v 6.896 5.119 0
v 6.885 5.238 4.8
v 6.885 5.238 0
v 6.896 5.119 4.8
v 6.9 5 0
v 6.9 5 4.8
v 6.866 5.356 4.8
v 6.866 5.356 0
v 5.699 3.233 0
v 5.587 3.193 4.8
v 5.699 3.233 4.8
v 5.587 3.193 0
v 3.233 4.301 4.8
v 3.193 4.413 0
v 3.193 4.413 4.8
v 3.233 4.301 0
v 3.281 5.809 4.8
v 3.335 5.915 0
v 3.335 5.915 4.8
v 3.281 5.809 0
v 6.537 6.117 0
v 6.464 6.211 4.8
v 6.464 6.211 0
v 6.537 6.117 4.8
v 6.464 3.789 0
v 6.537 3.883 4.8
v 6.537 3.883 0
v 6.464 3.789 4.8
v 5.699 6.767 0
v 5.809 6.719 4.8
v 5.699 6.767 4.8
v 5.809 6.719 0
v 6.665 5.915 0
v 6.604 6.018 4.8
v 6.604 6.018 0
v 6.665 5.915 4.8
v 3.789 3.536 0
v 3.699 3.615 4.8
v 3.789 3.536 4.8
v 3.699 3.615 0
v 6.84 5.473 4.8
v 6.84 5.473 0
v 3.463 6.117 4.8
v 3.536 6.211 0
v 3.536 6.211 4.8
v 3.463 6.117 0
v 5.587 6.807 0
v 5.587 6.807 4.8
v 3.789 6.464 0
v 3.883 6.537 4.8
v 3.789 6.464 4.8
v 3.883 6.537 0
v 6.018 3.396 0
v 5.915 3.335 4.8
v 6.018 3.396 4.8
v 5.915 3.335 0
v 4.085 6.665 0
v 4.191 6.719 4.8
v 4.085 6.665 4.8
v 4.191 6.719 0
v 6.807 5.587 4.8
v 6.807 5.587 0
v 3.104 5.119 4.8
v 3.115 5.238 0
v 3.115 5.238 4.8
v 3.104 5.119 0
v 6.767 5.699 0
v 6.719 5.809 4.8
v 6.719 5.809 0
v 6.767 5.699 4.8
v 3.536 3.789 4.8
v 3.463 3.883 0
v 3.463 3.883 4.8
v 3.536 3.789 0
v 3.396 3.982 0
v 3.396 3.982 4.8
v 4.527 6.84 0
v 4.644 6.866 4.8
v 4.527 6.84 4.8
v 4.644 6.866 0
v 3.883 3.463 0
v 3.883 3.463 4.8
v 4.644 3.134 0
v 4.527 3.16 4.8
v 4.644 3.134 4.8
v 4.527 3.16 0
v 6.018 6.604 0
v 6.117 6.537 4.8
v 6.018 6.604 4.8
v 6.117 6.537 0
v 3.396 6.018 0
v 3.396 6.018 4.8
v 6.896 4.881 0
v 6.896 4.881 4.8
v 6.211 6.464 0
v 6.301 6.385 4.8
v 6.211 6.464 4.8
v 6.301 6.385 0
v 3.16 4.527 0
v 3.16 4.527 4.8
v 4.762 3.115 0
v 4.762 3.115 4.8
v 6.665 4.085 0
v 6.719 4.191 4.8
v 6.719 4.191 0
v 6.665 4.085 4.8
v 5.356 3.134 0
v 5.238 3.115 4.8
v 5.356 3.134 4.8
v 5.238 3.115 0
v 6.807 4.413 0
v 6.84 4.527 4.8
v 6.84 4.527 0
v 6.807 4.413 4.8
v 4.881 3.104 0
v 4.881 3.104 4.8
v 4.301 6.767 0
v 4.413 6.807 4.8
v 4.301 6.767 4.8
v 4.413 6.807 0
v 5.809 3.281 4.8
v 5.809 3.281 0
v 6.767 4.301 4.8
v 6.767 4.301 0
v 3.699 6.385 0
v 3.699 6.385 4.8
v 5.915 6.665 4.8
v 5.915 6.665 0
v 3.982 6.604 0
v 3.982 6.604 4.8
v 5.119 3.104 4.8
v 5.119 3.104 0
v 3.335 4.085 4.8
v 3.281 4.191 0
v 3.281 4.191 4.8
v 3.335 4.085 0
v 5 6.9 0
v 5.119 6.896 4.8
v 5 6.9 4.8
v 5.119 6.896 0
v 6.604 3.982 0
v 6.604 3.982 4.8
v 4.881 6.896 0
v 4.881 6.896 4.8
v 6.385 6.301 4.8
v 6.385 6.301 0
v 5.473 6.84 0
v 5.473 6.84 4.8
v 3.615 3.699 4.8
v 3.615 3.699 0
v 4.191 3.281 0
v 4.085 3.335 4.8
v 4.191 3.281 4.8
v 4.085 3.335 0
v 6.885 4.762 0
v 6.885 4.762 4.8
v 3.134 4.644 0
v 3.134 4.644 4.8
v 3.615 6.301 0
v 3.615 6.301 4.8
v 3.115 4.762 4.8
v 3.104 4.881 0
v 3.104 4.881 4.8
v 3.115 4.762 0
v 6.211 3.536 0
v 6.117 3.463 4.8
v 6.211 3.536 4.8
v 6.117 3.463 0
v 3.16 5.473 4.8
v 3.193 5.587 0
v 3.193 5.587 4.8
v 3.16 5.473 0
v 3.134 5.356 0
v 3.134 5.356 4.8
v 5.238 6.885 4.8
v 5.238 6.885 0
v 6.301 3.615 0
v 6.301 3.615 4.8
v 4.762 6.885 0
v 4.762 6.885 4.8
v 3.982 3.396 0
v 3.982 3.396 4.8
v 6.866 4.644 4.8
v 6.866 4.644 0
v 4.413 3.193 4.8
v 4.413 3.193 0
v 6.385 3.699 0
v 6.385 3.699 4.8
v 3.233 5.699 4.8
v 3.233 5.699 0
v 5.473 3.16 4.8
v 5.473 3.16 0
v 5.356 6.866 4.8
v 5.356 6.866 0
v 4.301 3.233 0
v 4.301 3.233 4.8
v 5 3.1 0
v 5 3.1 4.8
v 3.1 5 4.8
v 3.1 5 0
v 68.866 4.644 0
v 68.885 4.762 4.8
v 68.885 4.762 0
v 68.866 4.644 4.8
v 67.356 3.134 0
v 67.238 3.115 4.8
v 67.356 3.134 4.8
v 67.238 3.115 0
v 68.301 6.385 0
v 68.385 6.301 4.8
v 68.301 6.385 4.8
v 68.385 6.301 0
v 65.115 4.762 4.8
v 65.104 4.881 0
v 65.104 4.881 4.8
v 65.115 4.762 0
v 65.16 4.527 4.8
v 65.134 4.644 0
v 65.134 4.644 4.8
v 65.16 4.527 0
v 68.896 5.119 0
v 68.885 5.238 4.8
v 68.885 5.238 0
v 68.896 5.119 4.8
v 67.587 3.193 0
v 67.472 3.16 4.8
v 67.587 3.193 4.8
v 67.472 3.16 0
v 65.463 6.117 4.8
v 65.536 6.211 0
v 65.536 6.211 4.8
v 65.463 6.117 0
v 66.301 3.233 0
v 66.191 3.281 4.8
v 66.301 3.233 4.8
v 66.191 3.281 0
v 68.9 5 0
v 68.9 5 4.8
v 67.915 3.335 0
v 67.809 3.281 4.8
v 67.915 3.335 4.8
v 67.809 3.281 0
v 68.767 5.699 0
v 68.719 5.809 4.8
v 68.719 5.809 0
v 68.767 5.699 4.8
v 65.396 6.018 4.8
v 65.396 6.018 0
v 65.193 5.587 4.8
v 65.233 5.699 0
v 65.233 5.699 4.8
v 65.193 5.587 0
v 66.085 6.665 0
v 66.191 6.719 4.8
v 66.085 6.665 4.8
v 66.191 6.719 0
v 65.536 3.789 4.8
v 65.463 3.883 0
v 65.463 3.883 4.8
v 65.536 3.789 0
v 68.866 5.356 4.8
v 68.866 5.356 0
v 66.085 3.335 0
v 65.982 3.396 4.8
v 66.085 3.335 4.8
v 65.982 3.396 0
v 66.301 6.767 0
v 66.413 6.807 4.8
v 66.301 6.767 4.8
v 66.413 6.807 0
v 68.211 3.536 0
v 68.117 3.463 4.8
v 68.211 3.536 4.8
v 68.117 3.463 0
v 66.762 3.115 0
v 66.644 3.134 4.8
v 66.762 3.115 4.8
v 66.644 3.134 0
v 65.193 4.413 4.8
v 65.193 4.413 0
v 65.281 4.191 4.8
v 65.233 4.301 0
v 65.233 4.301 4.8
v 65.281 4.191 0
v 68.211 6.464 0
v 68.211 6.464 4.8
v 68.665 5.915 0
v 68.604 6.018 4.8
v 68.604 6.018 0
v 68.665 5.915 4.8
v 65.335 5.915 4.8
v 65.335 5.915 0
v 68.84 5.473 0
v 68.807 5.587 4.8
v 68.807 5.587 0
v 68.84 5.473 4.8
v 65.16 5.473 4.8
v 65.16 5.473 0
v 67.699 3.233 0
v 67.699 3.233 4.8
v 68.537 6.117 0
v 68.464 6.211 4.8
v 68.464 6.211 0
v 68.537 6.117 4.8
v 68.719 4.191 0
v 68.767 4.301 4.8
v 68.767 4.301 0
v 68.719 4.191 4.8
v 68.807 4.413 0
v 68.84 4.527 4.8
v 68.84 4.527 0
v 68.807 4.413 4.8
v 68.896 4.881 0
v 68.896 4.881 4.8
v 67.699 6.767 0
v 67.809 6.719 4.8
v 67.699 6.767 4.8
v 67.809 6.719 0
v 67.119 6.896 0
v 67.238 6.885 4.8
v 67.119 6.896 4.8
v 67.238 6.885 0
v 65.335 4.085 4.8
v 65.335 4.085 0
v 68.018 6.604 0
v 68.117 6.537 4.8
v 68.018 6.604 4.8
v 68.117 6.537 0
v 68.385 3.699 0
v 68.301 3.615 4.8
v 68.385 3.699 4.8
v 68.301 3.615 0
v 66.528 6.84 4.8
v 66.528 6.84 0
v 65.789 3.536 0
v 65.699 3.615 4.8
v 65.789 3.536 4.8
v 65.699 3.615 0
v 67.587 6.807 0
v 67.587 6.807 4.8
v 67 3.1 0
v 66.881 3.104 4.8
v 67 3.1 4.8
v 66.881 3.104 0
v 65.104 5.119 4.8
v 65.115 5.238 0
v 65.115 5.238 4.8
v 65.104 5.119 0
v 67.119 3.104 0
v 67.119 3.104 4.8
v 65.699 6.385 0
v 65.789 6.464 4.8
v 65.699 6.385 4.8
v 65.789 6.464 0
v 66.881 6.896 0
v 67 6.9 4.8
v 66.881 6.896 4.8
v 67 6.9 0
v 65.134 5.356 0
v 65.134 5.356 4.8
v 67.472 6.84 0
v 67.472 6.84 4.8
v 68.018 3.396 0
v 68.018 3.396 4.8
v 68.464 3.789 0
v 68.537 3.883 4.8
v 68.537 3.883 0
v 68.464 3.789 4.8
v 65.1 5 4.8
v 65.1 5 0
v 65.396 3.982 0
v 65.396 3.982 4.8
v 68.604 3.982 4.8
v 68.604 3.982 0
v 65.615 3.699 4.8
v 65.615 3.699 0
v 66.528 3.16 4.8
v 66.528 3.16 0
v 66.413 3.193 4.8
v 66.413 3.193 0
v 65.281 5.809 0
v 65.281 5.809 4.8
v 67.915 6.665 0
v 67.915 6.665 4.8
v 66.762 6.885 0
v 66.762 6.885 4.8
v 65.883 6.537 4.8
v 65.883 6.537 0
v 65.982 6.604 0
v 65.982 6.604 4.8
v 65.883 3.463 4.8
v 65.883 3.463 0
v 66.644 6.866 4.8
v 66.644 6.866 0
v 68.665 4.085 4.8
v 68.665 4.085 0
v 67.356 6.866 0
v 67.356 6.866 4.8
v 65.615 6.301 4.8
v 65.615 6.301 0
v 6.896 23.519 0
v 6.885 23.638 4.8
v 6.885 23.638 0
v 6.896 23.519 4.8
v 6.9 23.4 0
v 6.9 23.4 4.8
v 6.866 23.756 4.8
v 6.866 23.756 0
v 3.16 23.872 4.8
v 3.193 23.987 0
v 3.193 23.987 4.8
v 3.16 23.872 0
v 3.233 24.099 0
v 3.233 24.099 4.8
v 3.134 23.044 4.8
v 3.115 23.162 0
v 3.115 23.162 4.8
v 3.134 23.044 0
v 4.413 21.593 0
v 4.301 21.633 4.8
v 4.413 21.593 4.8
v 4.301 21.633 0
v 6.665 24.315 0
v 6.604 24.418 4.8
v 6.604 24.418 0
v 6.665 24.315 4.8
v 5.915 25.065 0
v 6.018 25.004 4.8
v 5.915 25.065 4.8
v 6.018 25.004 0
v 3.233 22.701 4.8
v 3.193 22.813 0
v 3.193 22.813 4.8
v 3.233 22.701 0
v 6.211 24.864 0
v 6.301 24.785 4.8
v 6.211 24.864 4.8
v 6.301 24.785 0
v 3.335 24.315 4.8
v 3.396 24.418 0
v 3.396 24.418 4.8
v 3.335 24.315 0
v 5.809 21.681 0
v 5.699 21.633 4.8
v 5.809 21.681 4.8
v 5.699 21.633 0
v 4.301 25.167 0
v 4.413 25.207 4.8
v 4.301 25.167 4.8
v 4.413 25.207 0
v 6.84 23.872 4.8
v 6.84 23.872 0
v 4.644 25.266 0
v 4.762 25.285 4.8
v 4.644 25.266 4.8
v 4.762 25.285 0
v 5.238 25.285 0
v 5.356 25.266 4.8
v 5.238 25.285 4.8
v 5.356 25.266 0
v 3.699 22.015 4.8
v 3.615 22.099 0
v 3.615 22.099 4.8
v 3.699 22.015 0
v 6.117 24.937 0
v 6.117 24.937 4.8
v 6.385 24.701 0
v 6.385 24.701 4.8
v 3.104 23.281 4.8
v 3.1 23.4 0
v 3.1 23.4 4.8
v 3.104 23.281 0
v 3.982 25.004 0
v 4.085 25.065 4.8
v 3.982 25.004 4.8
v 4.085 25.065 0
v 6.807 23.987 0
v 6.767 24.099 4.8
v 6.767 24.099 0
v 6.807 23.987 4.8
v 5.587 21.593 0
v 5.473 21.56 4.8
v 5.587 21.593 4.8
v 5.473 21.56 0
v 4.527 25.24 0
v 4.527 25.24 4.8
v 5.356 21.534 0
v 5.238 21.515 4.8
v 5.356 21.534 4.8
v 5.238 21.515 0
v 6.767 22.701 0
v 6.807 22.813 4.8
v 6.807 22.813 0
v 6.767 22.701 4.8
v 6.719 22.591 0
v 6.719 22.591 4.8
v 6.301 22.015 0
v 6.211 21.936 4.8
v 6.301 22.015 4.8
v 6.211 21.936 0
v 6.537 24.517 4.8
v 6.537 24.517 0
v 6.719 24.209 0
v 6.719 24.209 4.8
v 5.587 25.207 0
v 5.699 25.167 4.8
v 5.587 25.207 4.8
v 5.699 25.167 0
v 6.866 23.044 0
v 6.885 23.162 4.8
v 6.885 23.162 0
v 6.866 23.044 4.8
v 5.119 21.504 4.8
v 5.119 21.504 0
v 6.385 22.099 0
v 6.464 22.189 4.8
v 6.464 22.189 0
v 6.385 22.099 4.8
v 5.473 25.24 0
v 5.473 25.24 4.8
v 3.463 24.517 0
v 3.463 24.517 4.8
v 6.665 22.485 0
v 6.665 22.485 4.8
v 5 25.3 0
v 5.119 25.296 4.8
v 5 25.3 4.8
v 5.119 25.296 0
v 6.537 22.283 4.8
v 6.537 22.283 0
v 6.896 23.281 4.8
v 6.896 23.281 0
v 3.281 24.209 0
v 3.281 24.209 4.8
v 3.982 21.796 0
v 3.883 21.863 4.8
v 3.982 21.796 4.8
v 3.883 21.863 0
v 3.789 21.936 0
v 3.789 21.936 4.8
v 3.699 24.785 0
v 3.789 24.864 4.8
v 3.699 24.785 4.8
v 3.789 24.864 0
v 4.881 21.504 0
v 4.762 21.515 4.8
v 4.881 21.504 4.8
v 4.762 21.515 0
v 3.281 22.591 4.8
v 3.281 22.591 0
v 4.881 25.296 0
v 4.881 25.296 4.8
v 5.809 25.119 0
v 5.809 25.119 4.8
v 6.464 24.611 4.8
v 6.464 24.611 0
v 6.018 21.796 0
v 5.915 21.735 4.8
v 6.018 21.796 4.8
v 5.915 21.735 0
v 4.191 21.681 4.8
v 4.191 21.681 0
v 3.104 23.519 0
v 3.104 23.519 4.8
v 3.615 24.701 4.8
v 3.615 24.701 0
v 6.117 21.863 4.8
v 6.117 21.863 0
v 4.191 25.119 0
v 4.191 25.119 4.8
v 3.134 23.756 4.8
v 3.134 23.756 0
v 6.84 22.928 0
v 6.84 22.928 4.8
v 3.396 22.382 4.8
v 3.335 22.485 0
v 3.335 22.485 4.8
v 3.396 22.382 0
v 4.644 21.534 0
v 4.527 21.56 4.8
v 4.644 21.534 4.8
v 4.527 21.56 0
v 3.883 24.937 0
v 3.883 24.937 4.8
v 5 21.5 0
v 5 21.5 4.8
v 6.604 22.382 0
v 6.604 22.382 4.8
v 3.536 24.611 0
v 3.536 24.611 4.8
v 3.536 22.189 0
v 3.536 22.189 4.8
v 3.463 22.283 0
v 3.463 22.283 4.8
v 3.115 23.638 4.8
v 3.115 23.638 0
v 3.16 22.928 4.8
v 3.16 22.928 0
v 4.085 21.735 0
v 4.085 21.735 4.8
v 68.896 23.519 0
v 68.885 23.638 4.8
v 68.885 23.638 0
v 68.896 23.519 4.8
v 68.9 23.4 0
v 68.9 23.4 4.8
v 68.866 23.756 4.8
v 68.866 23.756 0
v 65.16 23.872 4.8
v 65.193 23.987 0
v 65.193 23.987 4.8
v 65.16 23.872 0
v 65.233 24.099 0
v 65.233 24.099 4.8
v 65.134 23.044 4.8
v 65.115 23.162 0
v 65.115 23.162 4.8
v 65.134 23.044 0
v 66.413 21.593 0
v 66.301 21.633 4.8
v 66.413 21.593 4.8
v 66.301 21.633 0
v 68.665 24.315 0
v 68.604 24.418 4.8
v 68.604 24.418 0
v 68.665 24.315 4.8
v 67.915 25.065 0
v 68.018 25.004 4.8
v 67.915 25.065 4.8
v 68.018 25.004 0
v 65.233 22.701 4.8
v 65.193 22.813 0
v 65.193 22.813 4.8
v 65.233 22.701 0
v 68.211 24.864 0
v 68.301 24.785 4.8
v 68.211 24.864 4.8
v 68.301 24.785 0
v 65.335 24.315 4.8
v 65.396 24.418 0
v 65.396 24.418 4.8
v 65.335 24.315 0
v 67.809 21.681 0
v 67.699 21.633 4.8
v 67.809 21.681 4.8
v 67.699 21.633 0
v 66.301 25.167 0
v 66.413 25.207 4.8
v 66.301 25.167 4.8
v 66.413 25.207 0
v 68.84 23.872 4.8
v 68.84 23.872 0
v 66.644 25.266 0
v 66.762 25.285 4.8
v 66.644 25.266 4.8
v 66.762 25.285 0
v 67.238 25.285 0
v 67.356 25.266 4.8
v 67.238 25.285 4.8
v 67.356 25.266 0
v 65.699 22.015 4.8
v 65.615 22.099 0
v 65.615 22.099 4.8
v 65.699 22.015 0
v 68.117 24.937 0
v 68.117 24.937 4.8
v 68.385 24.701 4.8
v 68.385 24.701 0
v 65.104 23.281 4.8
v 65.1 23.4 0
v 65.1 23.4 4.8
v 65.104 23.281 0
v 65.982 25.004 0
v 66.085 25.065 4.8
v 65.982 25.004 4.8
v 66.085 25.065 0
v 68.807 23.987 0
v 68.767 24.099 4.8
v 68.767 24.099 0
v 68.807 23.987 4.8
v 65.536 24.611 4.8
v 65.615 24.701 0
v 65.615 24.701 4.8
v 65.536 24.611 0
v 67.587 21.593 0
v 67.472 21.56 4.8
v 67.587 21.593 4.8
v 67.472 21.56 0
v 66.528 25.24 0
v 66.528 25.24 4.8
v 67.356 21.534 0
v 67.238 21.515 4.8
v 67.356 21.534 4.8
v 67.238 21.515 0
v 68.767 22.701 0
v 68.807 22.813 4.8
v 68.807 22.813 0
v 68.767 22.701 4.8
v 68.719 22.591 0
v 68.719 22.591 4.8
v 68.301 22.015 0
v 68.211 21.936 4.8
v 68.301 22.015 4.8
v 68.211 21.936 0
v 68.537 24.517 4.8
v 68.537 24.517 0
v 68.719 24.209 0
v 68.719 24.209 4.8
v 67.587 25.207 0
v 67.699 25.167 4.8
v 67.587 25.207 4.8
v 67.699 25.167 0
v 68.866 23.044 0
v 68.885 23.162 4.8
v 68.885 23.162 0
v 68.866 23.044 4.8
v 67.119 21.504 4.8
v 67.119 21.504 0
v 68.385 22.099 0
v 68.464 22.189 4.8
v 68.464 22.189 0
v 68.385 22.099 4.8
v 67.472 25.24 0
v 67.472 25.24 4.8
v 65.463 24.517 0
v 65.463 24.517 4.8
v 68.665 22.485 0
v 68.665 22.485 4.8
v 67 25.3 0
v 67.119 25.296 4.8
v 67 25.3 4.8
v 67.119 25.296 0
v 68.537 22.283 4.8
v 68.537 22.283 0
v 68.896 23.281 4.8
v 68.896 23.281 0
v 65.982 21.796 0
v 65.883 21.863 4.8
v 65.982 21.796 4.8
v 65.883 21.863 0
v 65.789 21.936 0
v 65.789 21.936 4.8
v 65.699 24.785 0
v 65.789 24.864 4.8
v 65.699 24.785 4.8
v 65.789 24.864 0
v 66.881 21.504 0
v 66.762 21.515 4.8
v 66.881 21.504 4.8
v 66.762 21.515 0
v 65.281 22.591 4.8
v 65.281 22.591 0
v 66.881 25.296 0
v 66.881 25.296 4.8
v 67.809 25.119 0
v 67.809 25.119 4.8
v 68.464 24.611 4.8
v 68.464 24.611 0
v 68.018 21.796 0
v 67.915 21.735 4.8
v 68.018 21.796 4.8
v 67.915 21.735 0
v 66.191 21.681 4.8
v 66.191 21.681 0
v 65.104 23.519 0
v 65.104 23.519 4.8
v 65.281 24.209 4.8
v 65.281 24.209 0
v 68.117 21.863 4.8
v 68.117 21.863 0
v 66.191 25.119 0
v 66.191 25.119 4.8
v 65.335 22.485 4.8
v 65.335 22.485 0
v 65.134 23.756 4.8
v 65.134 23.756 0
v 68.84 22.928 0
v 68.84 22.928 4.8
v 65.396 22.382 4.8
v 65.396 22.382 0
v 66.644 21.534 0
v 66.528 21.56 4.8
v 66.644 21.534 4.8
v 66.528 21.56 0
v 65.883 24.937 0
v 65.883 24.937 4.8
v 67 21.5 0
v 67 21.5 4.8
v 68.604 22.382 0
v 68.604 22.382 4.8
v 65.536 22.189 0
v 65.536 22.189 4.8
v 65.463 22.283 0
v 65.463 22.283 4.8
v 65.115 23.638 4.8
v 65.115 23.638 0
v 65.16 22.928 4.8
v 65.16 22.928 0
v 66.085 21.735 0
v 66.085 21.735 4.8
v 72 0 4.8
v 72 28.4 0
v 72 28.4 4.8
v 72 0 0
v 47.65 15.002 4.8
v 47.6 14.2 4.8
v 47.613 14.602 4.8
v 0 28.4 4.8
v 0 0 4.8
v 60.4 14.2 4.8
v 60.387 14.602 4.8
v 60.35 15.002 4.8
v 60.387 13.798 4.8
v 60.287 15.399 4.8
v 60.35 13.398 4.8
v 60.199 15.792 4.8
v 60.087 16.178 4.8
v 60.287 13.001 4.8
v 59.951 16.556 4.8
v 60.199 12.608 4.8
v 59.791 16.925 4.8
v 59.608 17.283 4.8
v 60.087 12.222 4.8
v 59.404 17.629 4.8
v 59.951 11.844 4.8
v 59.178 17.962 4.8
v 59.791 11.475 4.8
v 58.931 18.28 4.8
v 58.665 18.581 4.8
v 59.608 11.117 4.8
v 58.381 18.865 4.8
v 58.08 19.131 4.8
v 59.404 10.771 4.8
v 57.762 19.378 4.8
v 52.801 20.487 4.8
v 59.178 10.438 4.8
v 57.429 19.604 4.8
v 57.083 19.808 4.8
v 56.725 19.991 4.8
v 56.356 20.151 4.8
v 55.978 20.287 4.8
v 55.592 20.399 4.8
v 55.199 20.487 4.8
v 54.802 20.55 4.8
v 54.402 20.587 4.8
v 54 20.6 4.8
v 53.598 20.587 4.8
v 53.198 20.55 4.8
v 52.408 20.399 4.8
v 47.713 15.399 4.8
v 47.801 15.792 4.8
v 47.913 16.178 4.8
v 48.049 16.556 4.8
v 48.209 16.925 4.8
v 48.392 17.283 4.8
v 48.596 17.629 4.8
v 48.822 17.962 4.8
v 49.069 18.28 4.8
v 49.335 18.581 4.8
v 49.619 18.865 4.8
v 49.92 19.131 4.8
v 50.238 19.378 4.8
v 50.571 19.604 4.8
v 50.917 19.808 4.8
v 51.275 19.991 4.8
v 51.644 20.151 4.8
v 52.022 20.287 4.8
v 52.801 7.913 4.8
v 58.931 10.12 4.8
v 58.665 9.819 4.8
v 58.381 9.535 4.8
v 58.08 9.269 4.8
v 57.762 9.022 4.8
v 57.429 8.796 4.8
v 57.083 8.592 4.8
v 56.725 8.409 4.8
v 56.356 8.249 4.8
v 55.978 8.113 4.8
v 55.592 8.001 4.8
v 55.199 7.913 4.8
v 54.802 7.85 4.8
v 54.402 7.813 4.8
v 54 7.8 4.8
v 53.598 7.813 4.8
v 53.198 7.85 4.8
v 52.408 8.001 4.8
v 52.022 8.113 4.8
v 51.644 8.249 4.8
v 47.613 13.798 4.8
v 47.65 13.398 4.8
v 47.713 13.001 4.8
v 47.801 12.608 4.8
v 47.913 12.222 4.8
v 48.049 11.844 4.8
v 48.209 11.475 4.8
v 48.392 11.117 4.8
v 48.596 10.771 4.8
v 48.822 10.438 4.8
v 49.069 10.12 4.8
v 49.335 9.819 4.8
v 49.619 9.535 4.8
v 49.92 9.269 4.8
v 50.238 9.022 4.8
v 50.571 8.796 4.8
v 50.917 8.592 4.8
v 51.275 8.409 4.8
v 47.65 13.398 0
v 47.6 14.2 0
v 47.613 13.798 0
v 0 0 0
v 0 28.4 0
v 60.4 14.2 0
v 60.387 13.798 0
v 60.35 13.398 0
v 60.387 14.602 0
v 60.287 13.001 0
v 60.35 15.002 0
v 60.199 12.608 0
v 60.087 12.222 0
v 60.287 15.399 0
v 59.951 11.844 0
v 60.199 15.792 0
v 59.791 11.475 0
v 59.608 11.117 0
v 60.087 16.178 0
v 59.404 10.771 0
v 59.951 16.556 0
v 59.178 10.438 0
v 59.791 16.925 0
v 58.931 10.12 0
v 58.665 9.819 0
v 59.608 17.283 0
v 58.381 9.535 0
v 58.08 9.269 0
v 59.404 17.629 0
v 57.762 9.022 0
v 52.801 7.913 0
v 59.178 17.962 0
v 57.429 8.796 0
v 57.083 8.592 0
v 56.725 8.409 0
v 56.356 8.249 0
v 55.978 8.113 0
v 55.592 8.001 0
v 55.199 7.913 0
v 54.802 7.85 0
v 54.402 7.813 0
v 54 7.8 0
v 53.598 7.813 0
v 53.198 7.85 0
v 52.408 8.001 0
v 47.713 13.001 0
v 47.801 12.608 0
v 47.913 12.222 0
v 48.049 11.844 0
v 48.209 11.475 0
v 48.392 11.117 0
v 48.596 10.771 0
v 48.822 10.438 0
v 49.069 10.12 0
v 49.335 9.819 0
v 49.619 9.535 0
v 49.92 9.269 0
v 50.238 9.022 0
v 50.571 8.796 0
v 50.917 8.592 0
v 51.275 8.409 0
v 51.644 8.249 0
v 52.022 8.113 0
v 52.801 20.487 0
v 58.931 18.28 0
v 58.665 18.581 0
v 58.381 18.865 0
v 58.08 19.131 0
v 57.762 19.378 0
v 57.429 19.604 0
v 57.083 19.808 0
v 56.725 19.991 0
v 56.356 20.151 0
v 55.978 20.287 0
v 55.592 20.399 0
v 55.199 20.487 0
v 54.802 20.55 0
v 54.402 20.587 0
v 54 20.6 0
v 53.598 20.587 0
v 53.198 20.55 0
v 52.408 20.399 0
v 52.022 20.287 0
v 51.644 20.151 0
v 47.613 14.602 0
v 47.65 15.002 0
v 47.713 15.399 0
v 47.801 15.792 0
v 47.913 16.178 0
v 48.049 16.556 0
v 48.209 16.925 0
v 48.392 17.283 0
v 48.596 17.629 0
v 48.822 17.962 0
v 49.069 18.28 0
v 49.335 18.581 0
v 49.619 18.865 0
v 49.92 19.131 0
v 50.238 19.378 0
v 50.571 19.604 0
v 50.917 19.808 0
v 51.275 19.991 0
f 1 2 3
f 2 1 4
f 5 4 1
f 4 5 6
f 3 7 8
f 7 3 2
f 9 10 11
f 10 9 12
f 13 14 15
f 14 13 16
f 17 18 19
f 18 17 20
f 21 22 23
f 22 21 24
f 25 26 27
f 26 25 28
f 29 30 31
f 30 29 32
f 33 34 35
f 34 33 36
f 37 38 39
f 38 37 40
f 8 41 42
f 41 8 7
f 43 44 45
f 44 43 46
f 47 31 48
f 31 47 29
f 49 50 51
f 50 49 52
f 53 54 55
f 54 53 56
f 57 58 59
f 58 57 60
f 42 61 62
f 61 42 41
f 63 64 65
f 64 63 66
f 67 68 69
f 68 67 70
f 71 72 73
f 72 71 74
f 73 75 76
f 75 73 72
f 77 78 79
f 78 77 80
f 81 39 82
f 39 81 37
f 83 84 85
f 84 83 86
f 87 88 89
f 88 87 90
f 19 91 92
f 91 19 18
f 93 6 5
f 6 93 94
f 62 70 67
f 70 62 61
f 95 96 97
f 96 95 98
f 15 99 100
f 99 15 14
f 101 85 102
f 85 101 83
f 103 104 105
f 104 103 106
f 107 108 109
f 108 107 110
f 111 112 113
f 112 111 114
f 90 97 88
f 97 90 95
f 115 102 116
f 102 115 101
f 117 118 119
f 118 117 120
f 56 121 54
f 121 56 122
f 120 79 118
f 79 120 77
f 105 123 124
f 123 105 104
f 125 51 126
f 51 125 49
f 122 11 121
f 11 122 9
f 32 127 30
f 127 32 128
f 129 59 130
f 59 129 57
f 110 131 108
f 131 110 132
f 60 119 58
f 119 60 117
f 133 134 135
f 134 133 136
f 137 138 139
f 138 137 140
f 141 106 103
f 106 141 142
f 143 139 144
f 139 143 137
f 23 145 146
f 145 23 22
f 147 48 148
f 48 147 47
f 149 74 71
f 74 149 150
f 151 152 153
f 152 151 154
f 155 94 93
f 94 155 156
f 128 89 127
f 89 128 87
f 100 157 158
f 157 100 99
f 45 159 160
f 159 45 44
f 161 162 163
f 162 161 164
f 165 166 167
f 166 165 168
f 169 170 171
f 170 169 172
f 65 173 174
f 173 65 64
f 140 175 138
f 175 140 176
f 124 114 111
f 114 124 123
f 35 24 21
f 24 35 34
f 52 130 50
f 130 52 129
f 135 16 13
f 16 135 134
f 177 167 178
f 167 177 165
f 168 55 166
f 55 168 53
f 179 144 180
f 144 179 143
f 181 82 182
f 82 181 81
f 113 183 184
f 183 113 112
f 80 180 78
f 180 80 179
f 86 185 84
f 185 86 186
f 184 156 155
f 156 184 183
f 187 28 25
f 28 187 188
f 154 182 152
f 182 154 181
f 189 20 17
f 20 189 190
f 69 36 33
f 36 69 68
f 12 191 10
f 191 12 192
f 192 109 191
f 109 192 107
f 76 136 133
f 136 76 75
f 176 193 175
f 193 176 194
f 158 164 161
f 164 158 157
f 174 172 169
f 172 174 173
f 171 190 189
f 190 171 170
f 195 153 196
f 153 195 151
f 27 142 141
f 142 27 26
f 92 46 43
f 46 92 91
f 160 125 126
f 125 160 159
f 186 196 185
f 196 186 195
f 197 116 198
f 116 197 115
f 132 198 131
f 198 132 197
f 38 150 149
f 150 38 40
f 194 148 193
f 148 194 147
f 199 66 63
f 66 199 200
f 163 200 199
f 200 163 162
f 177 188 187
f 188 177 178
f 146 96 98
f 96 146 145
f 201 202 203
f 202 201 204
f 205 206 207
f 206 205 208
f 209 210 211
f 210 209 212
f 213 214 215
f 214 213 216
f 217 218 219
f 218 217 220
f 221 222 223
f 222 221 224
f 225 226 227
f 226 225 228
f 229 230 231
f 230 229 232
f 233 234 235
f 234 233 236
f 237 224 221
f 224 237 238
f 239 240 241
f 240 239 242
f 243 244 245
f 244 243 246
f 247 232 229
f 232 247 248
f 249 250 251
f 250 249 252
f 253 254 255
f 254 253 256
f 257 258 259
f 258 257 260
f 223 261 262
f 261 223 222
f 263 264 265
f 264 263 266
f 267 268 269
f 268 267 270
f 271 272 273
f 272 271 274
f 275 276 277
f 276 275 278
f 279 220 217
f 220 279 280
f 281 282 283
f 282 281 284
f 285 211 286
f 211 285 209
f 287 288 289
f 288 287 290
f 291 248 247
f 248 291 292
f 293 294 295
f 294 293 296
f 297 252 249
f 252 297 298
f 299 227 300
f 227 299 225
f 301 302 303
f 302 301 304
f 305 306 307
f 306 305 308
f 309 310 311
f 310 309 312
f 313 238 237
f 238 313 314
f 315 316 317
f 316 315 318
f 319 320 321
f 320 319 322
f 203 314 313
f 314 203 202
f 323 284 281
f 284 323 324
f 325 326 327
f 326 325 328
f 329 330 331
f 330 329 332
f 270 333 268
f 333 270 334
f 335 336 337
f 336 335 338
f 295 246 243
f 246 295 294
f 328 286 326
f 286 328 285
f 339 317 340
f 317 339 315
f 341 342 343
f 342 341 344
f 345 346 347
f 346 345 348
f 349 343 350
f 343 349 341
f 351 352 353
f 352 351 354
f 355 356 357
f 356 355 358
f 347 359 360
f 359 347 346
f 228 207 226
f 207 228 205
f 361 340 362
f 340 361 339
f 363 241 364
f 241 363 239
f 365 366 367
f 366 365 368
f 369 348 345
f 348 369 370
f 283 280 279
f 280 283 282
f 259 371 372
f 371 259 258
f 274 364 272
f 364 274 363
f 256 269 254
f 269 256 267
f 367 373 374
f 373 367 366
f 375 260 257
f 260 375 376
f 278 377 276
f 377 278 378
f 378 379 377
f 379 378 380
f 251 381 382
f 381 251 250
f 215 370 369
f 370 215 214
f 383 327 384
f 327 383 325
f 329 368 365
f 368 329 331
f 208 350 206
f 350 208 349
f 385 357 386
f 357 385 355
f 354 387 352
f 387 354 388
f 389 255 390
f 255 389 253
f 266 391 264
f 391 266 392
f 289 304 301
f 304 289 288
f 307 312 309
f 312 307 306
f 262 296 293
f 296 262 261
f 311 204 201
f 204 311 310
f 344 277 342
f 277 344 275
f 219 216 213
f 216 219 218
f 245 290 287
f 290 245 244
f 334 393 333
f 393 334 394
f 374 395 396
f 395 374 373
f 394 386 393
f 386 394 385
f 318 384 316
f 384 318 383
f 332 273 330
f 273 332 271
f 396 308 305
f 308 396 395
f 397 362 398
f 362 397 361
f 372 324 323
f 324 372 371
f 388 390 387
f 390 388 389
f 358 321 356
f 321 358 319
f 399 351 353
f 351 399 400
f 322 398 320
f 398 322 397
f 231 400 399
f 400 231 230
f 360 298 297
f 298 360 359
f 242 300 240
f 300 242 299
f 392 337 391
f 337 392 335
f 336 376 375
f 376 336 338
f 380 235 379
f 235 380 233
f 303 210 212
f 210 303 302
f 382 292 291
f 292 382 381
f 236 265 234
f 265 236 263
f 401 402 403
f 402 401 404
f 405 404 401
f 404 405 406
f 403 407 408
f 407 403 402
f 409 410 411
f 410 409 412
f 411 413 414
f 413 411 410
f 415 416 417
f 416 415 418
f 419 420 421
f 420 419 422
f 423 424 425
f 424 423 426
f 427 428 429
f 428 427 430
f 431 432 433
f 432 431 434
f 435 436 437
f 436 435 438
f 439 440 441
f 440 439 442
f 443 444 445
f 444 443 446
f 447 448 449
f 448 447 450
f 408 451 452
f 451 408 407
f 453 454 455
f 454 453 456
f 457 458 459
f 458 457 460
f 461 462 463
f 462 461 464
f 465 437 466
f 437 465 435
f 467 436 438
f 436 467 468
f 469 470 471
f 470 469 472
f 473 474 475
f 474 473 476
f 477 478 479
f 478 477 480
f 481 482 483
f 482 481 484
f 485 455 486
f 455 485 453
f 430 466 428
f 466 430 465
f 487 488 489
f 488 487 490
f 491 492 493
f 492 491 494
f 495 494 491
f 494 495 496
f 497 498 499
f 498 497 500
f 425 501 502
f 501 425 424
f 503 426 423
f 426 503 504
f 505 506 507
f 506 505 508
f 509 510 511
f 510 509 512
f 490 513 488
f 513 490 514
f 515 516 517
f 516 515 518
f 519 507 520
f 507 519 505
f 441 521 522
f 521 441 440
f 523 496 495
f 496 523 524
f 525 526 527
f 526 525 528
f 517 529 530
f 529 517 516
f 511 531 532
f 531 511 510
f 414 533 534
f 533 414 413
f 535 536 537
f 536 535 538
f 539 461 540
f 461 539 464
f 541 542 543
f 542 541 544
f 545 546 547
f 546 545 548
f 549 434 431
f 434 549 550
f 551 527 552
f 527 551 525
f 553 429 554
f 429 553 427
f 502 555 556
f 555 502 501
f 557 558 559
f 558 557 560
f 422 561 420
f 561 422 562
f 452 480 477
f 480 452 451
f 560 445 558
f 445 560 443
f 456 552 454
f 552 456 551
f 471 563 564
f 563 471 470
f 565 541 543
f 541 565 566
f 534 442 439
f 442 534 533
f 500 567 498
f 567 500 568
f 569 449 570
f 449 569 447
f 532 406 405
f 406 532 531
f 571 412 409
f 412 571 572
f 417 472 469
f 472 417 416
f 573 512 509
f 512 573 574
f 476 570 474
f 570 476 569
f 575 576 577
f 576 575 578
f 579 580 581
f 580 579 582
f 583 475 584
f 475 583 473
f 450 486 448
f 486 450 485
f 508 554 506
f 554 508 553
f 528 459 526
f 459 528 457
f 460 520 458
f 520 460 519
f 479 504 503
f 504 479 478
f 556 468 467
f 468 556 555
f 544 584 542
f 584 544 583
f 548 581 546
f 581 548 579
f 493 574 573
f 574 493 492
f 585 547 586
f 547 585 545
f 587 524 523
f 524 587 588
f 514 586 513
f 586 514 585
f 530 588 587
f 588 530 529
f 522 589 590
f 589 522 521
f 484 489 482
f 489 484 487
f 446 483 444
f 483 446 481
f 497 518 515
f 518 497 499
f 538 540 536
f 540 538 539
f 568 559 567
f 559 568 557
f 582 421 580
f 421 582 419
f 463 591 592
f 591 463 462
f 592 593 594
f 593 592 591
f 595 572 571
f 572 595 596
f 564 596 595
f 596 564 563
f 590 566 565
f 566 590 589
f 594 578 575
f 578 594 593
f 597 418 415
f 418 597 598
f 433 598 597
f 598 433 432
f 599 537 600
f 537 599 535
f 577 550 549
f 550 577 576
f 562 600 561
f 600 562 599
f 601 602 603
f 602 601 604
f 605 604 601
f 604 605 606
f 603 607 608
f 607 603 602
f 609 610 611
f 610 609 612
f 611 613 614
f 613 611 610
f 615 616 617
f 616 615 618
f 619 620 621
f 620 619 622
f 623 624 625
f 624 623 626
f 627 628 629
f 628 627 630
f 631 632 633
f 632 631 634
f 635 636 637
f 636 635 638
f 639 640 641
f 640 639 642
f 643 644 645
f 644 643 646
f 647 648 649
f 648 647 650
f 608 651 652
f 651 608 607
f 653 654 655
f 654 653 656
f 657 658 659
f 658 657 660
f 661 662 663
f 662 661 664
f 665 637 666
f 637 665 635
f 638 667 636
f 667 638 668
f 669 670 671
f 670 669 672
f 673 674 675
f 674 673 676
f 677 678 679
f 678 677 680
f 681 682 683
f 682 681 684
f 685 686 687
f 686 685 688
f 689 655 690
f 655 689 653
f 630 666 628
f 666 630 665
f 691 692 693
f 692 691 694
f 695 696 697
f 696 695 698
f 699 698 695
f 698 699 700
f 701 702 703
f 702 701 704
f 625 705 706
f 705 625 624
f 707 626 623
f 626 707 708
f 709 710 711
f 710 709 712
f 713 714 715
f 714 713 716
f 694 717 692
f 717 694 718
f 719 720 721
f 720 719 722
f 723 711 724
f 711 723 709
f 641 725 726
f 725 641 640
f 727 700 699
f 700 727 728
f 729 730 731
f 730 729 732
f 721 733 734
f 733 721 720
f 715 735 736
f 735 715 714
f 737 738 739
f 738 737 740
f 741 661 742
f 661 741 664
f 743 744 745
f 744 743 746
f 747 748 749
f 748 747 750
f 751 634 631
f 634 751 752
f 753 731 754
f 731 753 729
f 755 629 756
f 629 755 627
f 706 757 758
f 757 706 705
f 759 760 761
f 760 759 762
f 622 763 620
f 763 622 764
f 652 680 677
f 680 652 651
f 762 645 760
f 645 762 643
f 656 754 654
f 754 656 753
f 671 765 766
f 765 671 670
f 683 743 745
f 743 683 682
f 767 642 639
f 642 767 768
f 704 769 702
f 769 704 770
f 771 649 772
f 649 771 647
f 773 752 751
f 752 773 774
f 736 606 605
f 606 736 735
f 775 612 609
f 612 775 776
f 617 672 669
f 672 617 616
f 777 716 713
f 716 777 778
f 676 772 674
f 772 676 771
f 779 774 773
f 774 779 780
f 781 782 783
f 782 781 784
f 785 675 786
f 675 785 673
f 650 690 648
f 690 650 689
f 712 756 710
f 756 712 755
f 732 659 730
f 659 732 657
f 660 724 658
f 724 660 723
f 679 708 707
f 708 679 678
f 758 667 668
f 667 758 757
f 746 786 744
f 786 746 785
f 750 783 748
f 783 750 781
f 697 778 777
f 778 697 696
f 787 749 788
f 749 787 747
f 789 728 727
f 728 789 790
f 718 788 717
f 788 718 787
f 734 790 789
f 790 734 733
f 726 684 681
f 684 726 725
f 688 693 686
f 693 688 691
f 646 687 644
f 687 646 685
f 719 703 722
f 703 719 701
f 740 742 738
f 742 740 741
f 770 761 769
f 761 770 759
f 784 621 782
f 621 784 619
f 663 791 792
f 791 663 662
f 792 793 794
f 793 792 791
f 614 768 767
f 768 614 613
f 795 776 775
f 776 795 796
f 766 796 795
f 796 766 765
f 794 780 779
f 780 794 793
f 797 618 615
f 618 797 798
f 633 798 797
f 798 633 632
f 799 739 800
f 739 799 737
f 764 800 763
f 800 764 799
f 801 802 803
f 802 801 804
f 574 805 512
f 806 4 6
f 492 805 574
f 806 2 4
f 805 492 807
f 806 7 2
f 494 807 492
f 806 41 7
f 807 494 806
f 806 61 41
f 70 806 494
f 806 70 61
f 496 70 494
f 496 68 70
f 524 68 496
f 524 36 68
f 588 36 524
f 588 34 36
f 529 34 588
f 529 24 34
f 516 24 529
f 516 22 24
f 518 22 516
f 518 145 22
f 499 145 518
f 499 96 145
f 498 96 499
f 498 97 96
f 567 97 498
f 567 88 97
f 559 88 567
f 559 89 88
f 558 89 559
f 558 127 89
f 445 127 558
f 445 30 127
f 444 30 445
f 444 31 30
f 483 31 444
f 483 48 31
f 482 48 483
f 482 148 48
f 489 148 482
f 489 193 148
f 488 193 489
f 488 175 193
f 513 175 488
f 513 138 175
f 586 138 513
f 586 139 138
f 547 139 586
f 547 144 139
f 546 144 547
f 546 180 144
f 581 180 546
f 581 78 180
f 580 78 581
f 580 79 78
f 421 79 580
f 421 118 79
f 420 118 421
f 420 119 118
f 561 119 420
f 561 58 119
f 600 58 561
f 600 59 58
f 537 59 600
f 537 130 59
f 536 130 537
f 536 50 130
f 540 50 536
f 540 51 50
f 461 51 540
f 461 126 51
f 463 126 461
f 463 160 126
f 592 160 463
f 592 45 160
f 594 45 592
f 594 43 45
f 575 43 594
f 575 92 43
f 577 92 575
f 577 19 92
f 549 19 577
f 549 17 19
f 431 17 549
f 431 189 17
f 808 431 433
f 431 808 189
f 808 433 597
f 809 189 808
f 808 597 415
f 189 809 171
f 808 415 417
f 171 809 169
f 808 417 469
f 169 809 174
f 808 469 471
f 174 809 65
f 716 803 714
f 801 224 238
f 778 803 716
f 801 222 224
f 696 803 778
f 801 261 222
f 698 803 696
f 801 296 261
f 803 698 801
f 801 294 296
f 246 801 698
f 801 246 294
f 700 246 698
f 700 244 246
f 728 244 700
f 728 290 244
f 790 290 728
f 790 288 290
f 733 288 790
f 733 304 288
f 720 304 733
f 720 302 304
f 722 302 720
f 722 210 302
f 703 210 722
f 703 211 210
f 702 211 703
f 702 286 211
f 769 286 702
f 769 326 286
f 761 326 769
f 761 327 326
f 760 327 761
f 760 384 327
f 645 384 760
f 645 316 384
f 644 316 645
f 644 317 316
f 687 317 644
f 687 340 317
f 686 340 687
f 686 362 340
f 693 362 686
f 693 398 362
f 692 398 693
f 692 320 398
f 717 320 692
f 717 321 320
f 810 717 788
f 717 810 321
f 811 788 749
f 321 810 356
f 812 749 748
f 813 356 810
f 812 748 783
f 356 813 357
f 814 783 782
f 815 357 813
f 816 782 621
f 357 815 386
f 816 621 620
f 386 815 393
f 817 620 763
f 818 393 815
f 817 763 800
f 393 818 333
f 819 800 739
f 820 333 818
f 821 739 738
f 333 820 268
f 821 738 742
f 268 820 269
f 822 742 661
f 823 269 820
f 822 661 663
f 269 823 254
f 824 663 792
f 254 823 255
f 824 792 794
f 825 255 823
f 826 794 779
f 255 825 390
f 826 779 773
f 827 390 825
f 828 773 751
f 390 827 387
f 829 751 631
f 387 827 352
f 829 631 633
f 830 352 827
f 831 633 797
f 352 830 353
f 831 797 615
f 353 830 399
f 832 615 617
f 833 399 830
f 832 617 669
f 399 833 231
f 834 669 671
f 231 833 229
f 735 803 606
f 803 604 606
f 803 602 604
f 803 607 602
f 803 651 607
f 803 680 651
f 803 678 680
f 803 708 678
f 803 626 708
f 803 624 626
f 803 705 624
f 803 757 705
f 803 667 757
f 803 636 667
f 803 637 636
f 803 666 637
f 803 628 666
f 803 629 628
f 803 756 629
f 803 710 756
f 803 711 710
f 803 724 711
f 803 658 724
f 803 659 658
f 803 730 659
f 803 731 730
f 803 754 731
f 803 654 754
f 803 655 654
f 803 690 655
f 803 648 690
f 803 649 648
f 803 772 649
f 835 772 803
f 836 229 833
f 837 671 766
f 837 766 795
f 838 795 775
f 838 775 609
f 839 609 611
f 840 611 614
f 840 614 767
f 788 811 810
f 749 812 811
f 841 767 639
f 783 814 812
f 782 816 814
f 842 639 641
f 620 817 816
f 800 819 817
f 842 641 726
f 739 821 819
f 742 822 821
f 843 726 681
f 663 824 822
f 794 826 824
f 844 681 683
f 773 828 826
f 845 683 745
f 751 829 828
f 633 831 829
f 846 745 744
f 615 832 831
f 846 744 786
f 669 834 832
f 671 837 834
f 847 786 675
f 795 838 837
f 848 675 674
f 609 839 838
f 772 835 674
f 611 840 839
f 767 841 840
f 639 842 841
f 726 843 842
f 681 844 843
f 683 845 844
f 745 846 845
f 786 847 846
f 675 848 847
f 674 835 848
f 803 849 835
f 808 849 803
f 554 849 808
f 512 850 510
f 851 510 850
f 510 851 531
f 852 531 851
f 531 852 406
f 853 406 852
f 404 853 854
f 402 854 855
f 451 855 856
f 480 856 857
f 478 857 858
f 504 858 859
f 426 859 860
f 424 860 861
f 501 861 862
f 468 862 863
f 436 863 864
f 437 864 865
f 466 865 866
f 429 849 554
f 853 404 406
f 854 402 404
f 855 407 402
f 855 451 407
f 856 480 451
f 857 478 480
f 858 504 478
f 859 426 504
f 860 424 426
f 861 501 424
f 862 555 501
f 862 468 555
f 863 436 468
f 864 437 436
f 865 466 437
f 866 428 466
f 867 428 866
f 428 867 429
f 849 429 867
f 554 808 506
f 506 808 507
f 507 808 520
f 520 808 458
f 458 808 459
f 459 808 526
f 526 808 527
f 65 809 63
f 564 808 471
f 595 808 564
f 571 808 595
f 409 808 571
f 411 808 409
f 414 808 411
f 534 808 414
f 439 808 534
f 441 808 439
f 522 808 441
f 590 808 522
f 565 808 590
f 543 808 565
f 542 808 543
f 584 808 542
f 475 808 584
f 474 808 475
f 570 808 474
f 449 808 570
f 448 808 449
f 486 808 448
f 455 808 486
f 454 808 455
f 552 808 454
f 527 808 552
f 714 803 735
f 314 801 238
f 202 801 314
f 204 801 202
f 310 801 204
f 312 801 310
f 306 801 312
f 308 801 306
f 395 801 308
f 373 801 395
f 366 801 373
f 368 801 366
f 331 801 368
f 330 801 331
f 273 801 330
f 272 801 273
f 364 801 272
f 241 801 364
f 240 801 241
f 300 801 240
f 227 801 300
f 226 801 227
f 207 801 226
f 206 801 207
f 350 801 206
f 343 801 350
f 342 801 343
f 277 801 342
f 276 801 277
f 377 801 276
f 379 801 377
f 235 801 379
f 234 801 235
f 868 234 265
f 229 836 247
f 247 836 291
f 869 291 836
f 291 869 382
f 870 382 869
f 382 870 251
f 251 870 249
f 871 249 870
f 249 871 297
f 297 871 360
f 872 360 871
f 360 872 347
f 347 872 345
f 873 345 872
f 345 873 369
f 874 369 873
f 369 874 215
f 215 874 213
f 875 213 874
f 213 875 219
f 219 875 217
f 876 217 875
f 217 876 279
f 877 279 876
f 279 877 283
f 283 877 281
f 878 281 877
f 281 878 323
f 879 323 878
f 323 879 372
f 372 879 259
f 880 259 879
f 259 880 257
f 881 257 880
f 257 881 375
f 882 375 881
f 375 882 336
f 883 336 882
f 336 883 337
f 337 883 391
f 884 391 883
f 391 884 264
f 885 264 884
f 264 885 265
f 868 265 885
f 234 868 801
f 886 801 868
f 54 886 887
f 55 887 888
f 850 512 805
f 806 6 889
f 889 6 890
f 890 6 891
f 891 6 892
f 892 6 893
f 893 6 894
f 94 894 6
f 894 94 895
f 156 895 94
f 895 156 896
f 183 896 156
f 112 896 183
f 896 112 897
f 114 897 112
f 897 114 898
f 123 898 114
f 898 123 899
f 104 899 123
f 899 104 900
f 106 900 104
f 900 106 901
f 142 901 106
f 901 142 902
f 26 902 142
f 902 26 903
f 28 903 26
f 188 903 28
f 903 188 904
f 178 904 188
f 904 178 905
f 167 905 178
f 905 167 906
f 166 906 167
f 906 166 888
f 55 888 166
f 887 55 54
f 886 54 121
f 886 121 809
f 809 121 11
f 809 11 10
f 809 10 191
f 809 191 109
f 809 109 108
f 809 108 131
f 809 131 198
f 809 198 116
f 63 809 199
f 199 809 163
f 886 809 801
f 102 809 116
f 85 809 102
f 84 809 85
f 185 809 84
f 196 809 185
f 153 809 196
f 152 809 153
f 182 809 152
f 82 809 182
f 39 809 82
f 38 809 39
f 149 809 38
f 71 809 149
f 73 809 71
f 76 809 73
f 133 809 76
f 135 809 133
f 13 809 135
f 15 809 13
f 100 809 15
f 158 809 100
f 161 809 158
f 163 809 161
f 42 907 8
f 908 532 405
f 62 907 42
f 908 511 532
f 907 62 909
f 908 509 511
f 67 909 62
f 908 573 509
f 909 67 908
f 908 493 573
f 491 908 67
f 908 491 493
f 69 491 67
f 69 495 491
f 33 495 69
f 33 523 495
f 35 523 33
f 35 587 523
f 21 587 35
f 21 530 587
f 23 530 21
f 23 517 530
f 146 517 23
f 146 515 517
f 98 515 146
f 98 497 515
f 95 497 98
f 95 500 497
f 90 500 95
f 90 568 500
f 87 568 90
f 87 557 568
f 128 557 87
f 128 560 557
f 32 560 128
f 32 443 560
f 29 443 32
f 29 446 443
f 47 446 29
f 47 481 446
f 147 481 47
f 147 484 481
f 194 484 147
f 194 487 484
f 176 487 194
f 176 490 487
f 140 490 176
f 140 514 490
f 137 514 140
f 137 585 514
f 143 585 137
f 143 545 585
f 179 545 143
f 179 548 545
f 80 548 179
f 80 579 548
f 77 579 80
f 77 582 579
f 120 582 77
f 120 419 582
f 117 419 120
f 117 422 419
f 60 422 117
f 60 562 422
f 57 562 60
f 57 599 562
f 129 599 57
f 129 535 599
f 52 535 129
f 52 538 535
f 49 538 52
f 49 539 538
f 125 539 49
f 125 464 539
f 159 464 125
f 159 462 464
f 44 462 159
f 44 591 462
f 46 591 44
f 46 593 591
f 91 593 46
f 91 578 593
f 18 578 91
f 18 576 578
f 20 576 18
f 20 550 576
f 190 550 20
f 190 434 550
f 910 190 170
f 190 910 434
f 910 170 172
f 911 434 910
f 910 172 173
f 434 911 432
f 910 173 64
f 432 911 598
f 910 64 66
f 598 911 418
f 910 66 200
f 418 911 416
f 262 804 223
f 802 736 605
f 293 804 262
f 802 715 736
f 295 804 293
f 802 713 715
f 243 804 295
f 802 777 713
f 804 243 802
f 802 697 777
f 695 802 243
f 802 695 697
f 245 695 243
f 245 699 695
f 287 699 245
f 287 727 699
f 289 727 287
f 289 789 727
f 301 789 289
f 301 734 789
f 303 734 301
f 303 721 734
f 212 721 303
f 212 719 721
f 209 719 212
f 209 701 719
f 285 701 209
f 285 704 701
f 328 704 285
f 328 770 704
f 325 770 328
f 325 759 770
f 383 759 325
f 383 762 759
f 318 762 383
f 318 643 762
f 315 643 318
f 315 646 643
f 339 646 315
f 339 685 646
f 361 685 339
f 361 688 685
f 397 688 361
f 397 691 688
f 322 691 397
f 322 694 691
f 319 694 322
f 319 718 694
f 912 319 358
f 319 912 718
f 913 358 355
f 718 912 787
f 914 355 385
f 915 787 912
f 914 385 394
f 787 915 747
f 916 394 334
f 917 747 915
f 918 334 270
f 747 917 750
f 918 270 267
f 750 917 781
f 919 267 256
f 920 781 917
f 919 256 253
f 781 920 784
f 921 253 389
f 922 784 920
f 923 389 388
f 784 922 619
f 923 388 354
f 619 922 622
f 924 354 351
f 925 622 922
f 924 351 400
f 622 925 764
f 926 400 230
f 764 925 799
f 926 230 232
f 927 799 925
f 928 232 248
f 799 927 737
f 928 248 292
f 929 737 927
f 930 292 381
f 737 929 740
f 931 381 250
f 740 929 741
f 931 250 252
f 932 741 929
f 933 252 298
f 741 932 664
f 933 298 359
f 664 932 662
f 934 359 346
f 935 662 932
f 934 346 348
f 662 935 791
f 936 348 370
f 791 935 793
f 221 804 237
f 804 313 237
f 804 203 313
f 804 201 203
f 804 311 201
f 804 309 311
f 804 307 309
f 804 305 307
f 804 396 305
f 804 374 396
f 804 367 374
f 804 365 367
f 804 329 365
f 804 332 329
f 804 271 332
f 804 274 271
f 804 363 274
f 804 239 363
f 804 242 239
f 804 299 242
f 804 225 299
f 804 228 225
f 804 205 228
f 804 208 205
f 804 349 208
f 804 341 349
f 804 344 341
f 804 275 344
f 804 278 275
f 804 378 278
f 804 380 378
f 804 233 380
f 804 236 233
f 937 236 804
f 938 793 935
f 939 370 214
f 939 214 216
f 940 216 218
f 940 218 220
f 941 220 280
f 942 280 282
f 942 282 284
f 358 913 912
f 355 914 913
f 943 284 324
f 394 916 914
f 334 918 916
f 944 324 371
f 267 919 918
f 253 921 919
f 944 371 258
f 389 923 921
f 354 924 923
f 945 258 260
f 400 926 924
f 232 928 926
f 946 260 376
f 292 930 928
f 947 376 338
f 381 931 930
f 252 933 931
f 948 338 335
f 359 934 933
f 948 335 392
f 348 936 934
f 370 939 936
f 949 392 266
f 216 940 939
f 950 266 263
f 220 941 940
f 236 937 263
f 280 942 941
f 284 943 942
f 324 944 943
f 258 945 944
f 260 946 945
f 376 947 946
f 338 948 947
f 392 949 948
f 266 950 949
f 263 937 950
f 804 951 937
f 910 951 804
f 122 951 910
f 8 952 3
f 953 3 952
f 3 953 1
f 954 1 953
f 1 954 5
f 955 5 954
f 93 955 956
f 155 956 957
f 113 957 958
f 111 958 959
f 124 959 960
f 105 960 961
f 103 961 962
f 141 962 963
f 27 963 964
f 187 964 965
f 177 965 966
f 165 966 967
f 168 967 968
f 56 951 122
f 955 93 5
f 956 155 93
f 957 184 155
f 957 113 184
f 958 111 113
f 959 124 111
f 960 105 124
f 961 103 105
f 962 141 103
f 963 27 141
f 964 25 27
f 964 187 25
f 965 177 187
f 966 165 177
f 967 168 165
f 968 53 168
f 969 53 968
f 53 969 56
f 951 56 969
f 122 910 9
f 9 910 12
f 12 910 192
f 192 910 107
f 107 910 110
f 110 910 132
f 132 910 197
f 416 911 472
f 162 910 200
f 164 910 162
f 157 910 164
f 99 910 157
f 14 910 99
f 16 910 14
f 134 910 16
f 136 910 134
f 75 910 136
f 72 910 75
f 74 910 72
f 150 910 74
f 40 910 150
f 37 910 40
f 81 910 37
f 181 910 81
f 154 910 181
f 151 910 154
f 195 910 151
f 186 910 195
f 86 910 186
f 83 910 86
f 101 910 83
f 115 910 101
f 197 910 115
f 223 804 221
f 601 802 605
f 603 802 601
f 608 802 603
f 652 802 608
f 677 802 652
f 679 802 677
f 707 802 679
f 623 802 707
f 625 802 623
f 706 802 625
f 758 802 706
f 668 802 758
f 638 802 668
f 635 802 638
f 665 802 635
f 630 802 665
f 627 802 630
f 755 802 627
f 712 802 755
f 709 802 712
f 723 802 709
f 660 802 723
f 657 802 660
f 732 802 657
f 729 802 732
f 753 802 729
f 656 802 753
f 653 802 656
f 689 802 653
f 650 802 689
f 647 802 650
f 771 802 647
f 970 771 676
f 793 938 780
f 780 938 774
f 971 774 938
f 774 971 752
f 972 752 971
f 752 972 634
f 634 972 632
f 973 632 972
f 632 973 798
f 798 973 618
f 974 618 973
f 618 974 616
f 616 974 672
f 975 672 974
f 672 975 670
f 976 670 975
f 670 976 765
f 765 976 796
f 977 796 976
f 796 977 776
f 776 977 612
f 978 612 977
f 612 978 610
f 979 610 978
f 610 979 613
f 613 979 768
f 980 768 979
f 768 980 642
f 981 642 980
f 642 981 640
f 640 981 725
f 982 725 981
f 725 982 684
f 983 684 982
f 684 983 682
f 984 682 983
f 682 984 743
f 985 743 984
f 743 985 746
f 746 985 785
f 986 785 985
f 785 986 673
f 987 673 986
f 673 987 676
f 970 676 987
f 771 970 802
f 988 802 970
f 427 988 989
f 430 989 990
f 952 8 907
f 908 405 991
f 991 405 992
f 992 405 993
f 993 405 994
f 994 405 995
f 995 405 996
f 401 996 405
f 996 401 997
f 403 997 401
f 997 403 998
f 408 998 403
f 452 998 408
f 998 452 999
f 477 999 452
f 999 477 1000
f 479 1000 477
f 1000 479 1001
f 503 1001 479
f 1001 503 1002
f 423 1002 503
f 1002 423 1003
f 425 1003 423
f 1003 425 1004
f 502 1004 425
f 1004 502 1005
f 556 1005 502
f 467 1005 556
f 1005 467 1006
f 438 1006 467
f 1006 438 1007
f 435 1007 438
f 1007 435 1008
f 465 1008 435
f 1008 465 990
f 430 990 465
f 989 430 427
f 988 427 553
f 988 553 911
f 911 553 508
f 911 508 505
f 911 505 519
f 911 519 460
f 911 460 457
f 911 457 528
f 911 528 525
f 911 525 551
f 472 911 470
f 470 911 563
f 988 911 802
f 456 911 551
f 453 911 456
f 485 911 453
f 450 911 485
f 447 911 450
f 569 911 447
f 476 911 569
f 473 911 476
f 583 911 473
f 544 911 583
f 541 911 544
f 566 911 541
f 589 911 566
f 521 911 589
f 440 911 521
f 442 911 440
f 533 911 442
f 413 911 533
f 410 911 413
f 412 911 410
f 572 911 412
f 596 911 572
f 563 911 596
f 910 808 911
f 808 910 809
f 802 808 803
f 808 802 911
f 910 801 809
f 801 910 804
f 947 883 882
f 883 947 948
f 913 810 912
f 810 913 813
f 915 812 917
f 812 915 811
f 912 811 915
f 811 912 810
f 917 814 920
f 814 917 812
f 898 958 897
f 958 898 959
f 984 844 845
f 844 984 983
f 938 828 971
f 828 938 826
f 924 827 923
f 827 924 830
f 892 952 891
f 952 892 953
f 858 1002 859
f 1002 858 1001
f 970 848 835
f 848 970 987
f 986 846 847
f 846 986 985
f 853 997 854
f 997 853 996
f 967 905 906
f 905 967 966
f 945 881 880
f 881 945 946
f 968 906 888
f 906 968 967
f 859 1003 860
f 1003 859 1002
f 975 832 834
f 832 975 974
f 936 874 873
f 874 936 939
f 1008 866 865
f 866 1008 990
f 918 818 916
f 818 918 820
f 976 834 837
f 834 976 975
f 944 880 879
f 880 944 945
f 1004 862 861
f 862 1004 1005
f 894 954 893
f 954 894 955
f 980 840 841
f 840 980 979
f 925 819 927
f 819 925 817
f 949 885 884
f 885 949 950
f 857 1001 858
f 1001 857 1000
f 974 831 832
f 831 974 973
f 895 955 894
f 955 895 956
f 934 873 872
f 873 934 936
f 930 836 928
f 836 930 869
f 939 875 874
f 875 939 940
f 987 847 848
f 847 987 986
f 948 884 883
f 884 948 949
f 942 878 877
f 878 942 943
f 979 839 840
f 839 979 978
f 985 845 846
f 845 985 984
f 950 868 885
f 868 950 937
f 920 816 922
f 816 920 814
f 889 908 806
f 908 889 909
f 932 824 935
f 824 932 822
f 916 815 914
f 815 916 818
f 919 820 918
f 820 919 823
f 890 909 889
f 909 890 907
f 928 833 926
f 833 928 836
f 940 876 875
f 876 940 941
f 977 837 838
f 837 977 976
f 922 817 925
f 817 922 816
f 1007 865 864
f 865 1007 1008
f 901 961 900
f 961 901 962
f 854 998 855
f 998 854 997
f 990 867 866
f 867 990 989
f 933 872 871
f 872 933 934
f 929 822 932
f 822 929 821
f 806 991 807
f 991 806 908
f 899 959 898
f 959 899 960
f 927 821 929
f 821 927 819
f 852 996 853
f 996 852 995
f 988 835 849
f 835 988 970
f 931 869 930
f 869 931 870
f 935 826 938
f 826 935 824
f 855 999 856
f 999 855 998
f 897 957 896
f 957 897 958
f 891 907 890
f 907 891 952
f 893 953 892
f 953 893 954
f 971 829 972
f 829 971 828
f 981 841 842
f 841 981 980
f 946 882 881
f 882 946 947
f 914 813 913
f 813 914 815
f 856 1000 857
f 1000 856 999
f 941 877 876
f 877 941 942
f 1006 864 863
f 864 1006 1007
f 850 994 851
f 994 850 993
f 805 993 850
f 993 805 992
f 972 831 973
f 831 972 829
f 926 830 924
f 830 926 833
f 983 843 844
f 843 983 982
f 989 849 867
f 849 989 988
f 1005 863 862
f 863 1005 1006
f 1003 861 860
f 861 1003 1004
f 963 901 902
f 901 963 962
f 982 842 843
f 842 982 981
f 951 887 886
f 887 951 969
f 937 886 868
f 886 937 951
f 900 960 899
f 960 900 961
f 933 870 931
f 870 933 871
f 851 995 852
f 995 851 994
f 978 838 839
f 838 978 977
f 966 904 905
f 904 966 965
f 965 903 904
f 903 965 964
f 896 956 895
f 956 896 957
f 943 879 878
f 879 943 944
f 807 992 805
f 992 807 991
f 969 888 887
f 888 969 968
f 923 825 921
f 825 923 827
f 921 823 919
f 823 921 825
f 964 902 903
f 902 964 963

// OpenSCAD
// file: ../configurations/global.scad
housing_facades_throws_diameter = 3.8;

// external size
case_external_x_size = 90;
case_external_y_size = 140;
case_external_z_size = 38;
case_external_panes_thickness = 4.8;

facade_front_round_edges_radius = 5;
facade_throws_margin = 5;

facade_front_fixation_throws_diameter = housing_facades_throws_diameter;

// facade corners
facade_corners_offset_lenght = 9;
facade_corners_main_x_size = 19;
facade_corners_main_y_size = 19;
facade_corners_main_thickness = 11;

facade_fn = 100;


facade_controller_coords = [
    case_external_x_size / 2,
    case_external_y_size / 2 - 30,
];


// Screen frames
screen_frame_electronic_board_margin = 3;
screen_frame_throw_diameter = 3.5;
screen_frame_piece_z_size = 1.5;
screen_frame_piece_glass_embedding_margin = 1;
screen_frame_piece_glass_embedding_z_depth = 1;
screen_frame_facade_piece_z_size = 1;
screen_frame_fn = 100;

screen_glass_visible_zone_x_margin = 0.7;
screen_glass_visible_zone_y_margin = 0.7;
screen_glass_z_size = 1;

facade_screen_coords = [
    case_external_x_size / 2,
    case_external_y_size / 2 + 28,
];


// Generics
insert_throw_diameter = 4.2;
insert_throw_length = 6 + 2;


// Controller facade
controller_breadboard_x_size_point = 28;
controller_breadboard_y_size_point = 9;

controller_facade_z_size = 2;
controller_facade_button_throw_margin = 1;
controller_facade_small_button_throw_margin = 0.5;
controller_facade_a_b_button_throw_margin = 0.5;

controller_facade_border_rounded_border_1 = 5;
controller_facade_border_rounded_border_2 = 4;

controller_facade_with_border_x_size = 82;
controller_facade_with_border_y_size = 47;

controller_facade_border_throws_margin = 5;
controller_braidboard_throw_margin = 1;

controller_facade_border_fn = 80;


// Cross Button
controller_cross_button_x_y_size = 20;
controller_cross_button_z_size = 4;
controller_cross_button_thickness = 6;
controller_cross_button_round_edges_radius = 1;
controller_cross_button_support_x_y_size = 22;
controller_cross_button_support_z_size = 1;
controller_cross_button_fn = 150;


// A and B Buttons
controller_a_b_button_diameter = 7.5;
controller_a_b_button_z_size = 4;
controller_a_b_button_support_diameter = 9.5;
controller_a_b_button_support_z_size = 1;
controller_a_b_button_fn = 80;


// small Buttons
controller_small_button_diameter = 5.5;
controller_small_button_z_size = 3;
controller_small_button_support_diameter = 7.5;
controller_small_button_support_z_size = 1;
controller_small_button_fn = 80;

// Directional cross
controller_directional_cross_points_coords = [6, 5];
controller_start_button_points_coords = [14, 3];
controller_select_button_points_coords = [18, 3];
controller_menu_button_points_coords = [14, 7];
controller_option_button_points_coords = [18, 7];
controller_a_button_points_coords = [23, 4];
controller_b_button_points_coords = [27, 6];
controller_bolt_throws_list = [
    [2, 2],
    [2, 8],
    [10, 2],
    [10, 8],
    [27, 2],
    [23, 8],
];


// usb charger holder
usb_charger_support_total_x_size = 17.57 + 15;
usb_charger_support_total_y_size = 12;
usb_charger_support_total_z_size = 2;


usb_charger_fixation_support_z_size = 4.5;
usb_charger_encaps_x_size = 17.57 + 1;
usb_charger_encaps_y_size = 27.85 + 1;
usb_charger_encaps_z_size = 1;

usb_charger_facade_x_fixation_spacing = 42;
usb_charger_facade_y_size = 1.36;
usb_charger_facade_z_size = 14;

usb_charger_throw_diameter = 3.5;
usb_charger_facade_holder_z_offset = 3.5; //
usb_charger_fixation_facade_y_margin = 0.5;
usb_charger_throw_offset_y = 4.5;
usb_charger_throw_offset_x = 3.5;
usb_charger_fadace_fn = 100;

usb_charger_external_facade_main_throw_margin = 2;
usb_charger_external_facade_main_throw_diameter = housing_facades_throws_diameter;

usb_charger_coords = [
    28, 15
];


facade_top_on_off_button_throw_diameter = 12.8;

facade_top_on_off_button_coords = [
    case_external_x_size / 2 + 18,
    case_external_z_size / 2
];


// Bolt join Piece Mother board
bolt_join_mother_board_internal_diameter = 3.5;
bolt_join_mother_board_external_diameter = 3.5 + (0.4 * 6);
bolt_join_mother_board_height = 3;

// Bolt join Piece GamePadController
bolt_join_game_pad_internal_diameter = 3.5;
bolt_join_game_pad_external_diameter = 3.5 + (0.4 * 6);
bolt_join_game_pad_height = 7.75 - 1.5; // 7.45

bolt_join_fn = 500;


// Mother board breadboard
mother_board_x_size_point = 25;
mother_board_y_size_point = 32;

mother_board_coords = [
    case_external_x_size / 2 - ((mother_board_x_size_point+1) * 2.54) / 2,
    44,
    3
];

mother_board_bolt_throws_list = [
    [3, 2],
    [3, 17],
    [23, 2],
    [23, 17],
];


// Speaker
speaker_facade_throw_diameter = 28 + 1;
speaker_facade_z_size = 1.36;
speaker_facade_rounded_radius = 5;
// file: ../enveloppes/on-off-button-throw-enveloppe.scad
include <../configurations/global.scad>

module onOffButtonThrowEnveloppe(
    z_size = case_external_panes_thickness * 2,
    throw_diameter = facade_top_on_off_button_throw_diameter
) {
    cylinder(h = z_size, d = throw_diameter, center = true, $fn = $fn);
}
// file: ../libraries/commons.scad
module forEachCoord(throws_coords_list) {
    for (coords = throws_coords_list)
        translate(
            [
                coords[0] == undef ? 0 : coords[0],
                coords[1] == undef ? 0 : coords[1],
                coords[2] == undef ? 0 : coords[2],
            ]
        )
            children();
}


// @todo
module forEachPointCoord(throws_coords_list) {
    for (coords = throws_coords_list)
        translate(
            [
                coords[0] == undef ? 0 : coords[0],
                coords[1] == undef ? 0 : coords[1],
                coords[2] == undef ? 0 : coords[2],
            ]
        )
            children();
}
// main file
use <./../libraries/commons.scad>
use <./../enveloppes/on-off-button-throw-enveloppe.scad>

include <./../configurations/global.scad>


module facadeTopPiece(
    x_size = case_external_x_size - (facade_corners_offset_lenght * 2),
    y_size = case_external_z_size - (case_external_panes_thickness * 2),
    z_size = case_external_panes_thickness,
    throws_margin = facade_throws_margin,
    throws_diameter = housing_facades_throws_diameter,
    facade_top_on_off_button_coords = facade_top_on_off_button_coords,
    facade_corners_offset_lenght = facade_corners_offset_lenght,
    case_external_panes_thickness = case_external_panes_thickness,
    $fn = facade_fn
) {
    echo(str("x_size: ", x_size, " y_size: ", y_size, " z_size: ", z_size));

    difference() {
        color("BurlyWood")
            cube([x_size, y_size, z_size]);

        translate([0, 0, -z_size / 2])
            forEachCoord([
                [throws_margin, throws_margin],
                [x_size - throws_margin, throws_margin],
                [throws_margin, y_size - throws_margin],
                [x_size - throws_margin, y_size - throws_margin,],
            ])
                cylinder(h = z_size * 2, d = throws_diameter, $fn = $fn);

        
        translate([
                facade_top_on_off_button_coords[0] - facade_corners_offset_lenght,
                facade_top_on_off_button_coords[1] - case_external_panes_thickness,
                z_size / 2
            ])
                onOffButtonThrowEnveloppe();
    }

}

facadeTopPiece();
